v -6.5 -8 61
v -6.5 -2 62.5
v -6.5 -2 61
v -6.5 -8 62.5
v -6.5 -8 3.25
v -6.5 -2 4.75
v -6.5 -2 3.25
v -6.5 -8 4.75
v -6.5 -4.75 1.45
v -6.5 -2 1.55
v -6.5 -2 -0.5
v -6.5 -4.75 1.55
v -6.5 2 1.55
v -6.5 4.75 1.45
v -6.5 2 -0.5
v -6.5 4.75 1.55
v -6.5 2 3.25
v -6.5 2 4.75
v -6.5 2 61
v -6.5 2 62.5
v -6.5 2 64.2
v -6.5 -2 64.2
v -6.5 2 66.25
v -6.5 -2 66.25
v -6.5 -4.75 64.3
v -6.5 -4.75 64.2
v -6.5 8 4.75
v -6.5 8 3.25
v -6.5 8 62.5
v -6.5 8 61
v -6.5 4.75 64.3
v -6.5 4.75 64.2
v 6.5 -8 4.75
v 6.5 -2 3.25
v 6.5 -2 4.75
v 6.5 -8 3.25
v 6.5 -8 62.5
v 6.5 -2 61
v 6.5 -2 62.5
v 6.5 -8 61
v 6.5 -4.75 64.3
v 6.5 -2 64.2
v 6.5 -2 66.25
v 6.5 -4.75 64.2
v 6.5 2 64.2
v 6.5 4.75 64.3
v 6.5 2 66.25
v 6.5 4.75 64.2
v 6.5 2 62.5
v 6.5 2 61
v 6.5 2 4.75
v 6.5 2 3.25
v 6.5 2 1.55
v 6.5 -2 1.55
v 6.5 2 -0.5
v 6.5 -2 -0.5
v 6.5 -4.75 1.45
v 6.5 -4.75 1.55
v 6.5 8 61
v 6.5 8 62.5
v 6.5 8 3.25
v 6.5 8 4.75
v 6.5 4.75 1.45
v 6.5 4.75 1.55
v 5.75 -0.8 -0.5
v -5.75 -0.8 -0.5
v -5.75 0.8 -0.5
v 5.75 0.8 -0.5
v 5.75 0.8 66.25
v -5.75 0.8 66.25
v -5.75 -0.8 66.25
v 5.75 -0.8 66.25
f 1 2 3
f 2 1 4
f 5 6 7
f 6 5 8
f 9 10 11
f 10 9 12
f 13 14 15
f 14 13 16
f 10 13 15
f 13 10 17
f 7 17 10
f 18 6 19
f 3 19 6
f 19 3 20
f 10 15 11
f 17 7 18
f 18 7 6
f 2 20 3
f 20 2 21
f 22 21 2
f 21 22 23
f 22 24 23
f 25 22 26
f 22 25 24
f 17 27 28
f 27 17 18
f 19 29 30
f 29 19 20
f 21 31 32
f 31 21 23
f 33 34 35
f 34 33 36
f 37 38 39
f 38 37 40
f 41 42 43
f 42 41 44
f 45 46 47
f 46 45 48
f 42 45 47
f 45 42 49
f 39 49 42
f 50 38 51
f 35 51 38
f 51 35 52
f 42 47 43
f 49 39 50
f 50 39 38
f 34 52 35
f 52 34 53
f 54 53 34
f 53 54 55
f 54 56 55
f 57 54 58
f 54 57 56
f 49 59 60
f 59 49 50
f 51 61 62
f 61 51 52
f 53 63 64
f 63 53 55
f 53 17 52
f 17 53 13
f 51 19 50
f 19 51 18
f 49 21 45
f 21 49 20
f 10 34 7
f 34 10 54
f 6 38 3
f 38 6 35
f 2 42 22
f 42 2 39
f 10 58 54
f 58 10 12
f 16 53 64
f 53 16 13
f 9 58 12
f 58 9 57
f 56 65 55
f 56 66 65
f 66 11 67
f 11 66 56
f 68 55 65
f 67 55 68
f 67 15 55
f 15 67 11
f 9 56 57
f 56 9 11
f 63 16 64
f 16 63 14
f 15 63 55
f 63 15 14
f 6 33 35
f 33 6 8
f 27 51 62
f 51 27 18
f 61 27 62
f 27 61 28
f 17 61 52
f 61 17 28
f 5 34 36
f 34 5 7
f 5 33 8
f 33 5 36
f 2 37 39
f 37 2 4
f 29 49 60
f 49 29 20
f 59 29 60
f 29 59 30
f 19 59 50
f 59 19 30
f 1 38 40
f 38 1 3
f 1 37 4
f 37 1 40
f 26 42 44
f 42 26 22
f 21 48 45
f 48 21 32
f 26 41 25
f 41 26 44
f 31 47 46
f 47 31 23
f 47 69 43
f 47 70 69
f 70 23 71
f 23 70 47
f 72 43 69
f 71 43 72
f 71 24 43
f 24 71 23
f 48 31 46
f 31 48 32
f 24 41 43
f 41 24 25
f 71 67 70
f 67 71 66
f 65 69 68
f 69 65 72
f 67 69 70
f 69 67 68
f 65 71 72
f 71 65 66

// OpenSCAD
include <circuit.scad>;

module clip() {
    hull() {
        translate([0, 0, 1.5])
            cube([13, 9.5, 0.1], center=true); // wide part of clip
        cube([13, 4, 1], center=true); // thin part of clip
    }
}    

// the stalk!
difference() { // drill wire hole
    union() {
        translate([-6.5, -2, 0])
            cube([13, 4, 65]); // stalk

        // bottom clip
        clip();

        // modesty plate
        translate([-6.5, -8, 3.25])
            cube([13, 16, 1.5]);
        

        // top plate
        translate([-6.5, -8, 61])
            cube([13, 16, 1.5]);
        
        // top clip
        translate([0, 0, 63+1.5+1.25])
        rotate([0, 180, 0])
            clip();
    }
    
    // driled hole
    translate([0, 0, -0.1])    
        cube([11.5, 1.6,200], center=true);        
    
    // some "art" for the side
    /* intersection() {
        translate([-6.5, -2, 5])
            cube([13, 4, 55]); // stalk
        
        translate([0, 2.8, 30])
        rotate([90, 0, 0])
        scale([1.5, 2, 1])
            circuit(1);
    } */
}
